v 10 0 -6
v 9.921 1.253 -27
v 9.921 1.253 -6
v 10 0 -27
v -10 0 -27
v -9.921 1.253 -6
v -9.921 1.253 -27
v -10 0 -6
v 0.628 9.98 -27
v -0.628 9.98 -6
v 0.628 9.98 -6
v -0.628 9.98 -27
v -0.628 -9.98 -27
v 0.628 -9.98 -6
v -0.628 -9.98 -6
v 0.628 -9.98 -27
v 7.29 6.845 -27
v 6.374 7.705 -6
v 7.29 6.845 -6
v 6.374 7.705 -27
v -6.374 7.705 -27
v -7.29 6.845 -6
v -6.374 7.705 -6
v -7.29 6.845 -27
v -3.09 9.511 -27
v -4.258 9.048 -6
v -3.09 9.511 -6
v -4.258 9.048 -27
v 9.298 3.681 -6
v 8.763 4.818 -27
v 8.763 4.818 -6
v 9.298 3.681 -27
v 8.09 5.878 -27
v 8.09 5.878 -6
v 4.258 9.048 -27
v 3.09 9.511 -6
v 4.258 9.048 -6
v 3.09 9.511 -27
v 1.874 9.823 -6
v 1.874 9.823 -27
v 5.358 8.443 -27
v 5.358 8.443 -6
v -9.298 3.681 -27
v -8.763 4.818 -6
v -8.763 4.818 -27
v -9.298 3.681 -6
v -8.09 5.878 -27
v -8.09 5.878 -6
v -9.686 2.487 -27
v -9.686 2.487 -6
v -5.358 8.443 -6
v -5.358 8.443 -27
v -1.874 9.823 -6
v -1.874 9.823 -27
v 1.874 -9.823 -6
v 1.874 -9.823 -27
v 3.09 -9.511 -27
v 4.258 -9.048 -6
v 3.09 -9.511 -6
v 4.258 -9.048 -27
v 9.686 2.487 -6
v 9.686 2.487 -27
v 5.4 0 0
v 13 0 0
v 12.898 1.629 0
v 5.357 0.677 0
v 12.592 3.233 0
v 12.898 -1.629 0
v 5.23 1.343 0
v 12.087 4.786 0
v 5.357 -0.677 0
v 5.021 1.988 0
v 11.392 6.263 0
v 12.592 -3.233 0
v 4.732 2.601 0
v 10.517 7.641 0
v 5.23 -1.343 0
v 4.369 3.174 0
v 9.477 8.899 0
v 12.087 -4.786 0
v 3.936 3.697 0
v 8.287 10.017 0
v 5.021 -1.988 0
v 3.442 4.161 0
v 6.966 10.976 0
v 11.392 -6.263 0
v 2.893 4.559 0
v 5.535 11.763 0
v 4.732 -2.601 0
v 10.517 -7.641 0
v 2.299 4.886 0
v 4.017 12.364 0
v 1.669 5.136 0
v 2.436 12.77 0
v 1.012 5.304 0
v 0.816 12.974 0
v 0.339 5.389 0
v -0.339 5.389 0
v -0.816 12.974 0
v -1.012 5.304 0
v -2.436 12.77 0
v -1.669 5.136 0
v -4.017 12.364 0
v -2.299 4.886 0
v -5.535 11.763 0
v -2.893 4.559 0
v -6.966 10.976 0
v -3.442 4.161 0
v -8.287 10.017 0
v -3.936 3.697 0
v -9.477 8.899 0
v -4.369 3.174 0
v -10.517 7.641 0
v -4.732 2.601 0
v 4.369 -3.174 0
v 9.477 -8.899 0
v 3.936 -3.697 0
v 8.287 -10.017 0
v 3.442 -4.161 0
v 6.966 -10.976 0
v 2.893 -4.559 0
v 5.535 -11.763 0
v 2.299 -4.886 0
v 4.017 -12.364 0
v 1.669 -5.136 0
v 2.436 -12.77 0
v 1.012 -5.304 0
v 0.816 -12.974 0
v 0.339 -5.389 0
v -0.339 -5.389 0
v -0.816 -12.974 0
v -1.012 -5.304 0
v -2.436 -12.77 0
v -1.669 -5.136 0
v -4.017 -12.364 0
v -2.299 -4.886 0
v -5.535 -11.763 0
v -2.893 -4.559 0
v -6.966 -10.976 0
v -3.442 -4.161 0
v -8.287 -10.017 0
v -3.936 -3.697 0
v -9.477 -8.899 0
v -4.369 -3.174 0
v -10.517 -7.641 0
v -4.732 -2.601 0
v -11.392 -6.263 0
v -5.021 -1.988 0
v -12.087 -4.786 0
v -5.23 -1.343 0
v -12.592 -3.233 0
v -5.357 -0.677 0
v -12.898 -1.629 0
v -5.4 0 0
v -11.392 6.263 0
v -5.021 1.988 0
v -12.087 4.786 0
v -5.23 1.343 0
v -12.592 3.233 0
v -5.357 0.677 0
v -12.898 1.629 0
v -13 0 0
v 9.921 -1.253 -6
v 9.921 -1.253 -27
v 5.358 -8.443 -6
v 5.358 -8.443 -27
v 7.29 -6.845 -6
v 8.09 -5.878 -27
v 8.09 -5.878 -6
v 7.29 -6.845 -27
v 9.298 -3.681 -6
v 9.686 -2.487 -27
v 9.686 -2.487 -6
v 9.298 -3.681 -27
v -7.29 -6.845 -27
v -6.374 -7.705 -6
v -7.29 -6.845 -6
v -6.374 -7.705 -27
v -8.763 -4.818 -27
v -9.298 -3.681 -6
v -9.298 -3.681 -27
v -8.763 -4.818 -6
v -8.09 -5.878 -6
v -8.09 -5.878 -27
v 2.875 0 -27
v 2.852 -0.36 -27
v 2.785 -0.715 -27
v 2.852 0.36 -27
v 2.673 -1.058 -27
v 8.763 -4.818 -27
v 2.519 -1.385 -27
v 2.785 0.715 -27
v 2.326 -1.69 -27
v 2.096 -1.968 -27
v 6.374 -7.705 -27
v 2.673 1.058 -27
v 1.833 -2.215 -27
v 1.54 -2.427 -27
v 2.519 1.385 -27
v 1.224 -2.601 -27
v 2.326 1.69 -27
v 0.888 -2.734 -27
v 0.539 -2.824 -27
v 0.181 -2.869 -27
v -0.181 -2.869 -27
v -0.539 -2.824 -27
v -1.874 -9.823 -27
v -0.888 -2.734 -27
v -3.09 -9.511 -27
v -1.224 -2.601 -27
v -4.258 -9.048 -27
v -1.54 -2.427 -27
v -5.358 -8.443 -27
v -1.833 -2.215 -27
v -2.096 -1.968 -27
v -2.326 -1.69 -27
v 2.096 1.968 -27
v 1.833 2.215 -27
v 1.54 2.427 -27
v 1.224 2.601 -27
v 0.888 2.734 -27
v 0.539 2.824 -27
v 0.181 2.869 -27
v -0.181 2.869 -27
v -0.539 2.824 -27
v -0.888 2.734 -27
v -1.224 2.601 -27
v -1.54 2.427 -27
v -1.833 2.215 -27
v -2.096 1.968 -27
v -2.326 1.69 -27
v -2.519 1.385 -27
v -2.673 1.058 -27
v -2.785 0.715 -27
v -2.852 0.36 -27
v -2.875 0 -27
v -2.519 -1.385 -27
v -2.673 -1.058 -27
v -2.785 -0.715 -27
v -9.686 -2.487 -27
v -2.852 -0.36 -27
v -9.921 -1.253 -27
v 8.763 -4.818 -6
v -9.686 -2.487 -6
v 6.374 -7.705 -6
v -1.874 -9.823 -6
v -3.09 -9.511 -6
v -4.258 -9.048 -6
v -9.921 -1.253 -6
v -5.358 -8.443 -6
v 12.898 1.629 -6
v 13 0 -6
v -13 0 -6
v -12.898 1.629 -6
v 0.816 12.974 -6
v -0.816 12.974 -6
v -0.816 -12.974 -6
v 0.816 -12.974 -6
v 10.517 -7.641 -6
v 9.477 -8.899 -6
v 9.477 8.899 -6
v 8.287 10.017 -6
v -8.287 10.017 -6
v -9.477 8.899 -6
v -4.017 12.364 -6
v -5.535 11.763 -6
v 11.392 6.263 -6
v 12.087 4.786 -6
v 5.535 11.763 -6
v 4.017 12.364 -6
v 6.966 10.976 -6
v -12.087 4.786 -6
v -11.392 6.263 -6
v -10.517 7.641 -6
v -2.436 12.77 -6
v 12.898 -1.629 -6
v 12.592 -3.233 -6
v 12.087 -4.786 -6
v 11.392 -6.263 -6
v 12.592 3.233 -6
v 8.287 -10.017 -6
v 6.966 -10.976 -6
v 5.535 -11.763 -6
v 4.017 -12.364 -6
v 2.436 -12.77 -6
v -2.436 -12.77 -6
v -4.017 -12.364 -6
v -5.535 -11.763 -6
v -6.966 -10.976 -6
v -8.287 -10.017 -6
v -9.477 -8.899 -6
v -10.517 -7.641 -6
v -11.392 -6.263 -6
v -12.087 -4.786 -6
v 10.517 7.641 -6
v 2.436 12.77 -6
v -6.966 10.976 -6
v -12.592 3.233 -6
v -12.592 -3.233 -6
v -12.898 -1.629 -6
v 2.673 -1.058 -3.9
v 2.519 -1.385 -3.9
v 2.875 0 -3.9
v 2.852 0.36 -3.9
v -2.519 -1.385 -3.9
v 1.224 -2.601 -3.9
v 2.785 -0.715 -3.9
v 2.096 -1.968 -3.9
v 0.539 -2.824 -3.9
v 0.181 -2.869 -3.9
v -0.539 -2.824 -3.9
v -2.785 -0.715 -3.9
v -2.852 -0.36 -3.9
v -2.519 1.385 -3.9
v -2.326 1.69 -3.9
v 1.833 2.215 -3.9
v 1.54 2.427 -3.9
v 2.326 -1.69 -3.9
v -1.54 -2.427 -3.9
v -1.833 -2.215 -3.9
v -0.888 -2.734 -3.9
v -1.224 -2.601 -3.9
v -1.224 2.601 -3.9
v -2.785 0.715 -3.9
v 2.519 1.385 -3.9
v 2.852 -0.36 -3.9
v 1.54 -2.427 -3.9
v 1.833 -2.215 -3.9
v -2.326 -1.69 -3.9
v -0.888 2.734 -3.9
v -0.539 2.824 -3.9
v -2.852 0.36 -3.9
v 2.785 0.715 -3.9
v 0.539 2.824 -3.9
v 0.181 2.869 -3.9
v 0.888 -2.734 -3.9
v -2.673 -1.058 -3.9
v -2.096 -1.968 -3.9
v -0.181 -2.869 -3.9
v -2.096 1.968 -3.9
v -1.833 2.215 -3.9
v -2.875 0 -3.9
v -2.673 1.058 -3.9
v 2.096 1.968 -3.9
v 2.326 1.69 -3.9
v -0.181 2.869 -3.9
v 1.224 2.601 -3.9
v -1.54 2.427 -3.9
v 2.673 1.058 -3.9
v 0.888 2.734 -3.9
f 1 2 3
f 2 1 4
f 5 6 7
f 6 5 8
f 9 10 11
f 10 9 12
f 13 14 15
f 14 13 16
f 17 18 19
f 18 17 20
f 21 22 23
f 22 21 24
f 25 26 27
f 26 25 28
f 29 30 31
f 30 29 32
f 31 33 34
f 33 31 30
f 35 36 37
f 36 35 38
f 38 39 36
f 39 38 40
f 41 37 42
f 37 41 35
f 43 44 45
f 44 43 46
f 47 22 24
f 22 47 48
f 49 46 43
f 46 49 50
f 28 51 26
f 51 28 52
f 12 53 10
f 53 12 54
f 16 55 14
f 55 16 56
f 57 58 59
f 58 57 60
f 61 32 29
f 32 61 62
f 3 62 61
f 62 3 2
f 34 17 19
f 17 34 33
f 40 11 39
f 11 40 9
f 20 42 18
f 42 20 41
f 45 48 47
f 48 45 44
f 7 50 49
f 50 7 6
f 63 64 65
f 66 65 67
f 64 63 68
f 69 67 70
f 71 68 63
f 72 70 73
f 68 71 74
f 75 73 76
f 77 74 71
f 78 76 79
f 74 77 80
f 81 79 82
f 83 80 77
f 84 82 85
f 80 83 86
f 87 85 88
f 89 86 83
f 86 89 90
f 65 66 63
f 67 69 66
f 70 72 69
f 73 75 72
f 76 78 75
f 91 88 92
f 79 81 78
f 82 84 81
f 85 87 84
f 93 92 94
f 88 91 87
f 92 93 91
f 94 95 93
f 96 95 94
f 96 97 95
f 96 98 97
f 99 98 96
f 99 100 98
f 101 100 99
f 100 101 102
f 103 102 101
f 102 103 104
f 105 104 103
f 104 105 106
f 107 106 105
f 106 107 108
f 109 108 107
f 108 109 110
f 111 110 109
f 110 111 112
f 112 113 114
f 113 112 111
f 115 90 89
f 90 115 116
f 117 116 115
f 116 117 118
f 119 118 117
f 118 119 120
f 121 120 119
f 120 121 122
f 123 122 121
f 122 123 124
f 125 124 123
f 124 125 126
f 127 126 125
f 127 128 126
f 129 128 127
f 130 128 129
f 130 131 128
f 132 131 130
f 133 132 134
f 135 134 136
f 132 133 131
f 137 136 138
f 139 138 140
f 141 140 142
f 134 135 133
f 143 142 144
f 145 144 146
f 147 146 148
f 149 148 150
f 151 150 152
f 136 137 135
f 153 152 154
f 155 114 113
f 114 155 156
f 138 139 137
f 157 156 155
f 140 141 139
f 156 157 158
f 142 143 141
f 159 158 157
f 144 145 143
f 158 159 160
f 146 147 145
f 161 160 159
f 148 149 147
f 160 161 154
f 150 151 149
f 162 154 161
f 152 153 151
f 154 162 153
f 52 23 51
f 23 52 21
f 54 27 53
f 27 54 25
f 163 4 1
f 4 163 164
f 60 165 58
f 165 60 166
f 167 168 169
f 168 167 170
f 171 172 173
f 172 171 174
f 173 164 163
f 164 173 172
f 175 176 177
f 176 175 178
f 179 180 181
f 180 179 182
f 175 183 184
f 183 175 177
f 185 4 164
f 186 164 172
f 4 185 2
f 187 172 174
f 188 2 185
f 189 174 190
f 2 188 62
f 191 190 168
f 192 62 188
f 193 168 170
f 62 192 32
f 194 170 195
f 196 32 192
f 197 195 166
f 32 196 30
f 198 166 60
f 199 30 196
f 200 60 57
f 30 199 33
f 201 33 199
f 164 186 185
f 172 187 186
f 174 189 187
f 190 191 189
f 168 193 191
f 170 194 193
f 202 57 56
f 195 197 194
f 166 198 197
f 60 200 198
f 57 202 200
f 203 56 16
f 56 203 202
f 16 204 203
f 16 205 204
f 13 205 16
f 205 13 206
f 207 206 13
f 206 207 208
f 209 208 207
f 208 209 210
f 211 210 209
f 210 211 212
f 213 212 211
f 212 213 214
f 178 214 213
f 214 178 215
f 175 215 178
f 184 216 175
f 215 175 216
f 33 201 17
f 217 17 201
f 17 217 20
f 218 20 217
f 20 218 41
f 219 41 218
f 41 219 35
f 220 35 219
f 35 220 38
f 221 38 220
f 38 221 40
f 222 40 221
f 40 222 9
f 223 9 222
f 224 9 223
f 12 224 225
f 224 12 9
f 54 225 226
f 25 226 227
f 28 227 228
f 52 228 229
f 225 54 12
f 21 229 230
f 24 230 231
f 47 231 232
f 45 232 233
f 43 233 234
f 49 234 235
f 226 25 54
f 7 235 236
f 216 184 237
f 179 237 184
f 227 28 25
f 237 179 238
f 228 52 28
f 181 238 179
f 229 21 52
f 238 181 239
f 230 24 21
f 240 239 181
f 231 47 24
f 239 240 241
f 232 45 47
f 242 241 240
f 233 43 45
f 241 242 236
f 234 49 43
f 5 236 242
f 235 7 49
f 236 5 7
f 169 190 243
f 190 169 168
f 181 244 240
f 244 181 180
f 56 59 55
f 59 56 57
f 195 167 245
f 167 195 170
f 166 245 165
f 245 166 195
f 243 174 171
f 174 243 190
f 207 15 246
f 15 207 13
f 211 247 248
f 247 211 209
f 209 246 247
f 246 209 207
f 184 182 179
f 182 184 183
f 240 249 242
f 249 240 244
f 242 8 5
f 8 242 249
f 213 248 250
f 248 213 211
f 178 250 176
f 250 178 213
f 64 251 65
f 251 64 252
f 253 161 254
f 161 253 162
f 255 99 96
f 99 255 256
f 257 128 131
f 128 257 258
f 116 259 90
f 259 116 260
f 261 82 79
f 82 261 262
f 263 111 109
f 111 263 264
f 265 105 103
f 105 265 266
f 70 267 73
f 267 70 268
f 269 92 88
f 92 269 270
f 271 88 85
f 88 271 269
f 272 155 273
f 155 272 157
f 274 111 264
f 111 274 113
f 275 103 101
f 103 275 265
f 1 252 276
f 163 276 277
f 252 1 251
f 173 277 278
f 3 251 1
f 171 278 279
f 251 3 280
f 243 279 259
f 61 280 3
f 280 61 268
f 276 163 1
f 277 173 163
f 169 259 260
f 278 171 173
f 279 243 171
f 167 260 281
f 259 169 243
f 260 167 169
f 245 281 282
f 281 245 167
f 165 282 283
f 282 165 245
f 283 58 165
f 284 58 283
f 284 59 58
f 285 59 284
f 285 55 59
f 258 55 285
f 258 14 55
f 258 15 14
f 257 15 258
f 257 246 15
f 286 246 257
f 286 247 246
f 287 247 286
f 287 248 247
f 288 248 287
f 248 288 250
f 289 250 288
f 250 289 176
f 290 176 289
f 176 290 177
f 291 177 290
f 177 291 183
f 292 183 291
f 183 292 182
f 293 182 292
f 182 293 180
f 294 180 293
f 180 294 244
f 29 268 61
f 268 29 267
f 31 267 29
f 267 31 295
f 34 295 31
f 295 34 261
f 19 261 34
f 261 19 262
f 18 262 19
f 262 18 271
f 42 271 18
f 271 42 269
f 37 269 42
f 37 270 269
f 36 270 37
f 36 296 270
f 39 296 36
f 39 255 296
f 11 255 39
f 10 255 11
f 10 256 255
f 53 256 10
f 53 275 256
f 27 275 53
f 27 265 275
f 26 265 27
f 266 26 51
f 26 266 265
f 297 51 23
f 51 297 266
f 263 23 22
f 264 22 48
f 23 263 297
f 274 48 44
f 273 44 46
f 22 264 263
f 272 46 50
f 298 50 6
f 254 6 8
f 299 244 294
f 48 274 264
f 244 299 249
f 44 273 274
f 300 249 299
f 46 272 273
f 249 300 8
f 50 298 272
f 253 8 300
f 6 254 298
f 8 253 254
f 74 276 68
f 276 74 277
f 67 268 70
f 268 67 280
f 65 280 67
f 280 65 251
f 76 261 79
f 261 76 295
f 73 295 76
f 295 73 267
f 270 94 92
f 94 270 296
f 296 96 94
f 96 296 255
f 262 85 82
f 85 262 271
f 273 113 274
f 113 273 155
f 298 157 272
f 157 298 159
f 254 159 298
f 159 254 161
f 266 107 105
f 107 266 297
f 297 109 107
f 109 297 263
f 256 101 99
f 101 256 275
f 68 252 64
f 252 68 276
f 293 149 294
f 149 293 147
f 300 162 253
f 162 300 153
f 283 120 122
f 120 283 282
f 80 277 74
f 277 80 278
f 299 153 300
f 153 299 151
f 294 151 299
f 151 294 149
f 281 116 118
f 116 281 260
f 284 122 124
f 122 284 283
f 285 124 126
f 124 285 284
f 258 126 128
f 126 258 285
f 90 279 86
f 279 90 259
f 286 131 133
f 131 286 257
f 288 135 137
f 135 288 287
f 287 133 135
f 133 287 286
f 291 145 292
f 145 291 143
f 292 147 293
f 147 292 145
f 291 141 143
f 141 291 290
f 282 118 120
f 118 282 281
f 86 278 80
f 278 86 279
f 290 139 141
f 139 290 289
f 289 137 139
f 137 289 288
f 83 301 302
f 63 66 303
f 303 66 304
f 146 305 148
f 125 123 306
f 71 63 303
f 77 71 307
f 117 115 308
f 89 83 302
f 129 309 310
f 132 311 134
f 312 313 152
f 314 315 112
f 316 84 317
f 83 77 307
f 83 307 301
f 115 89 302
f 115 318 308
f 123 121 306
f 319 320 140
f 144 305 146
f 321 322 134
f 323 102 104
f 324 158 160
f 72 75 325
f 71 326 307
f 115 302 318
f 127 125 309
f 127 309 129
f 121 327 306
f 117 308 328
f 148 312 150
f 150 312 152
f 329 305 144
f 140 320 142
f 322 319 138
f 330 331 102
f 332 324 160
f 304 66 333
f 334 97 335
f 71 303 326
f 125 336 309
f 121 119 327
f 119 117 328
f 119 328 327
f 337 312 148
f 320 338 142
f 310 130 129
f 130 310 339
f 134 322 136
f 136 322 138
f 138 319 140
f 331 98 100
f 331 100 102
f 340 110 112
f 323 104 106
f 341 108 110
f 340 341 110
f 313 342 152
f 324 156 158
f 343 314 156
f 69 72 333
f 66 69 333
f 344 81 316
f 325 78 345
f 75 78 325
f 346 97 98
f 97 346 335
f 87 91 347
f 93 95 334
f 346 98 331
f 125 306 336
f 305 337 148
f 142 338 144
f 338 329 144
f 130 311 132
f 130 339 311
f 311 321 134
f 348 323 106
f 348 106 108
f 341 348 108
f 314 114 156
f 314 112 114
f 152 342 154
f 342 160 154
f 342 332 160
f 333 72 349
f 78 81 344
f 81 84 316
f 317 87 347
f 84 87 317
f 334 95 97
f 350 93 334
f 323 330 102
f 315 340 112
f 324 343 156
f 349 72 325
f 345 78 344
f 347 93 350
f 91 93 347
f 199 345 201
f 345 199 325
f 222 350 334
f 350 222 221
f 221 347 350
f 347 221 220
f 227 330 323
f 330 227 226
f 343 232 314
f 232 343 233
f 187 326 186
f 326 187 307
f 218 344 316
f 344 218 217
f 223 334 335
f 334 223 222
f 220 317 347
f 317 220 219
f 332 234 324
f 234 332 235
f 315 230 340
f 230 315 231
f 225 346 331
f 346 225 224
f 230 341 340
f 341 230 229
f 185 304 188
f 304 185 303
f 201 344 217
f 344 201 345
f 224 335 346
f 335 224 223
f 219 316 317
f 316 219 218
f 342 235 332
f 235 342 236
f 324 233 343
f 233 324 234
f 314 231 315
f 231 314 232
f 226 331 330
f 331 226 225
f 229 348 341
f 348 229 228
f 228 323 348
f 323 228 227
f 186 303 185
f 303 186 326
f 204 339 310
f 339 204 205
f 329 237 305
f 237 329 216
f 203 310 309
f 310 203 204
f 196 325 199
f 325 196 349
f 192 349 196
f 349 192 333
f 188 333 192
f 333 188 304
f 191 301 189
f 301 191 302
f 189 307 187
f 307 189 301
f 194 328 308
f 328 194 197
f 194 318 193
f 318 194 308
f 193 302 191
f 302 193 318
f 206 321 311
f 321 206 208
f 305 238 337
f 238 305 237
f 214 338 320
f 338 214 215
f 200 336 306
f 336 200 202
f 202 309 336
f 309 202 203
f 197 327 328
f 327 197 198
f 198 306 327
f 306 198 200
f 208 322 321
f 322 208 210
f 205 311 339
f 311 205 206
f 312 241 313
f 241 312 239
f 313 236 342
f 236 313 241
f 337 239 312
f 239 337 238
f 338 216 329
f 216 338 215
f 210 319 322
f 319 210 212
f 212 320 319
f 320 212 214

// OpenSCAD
$fn = 50;


difference() {
	union() {
		translate(v = [0, 0, -27.0000000000]) {
			cylinder(h = 27, r = 10.0000000000);
		}
		translate(v = [0, 0, -6.0000000000]) {
			cylinder(h = 6, r = 13.0000000000);
		}
	}
	union() {
		translate(v = [0, 0, 0]) {
			rotate(a = [0, 0, 0]) {
				difference() {
					union() {
						#translate(v = [0, 0, -27.0000000000]) {
							cylinder(h = 27, r = 2.6000000000);
						}
						#translate(v = [0, 0, -3.9000000000]) {
							cylinder(h = 3.9000000000, r1 = 2.8750000000, r2 = 5.4000000000);
						}
						#translate(v = [0, 0, -27.0000000000]) {
							cylinder(h = 27, r = 2.8750000000);
						}
						#translate(v = [0, 0, -27.0000000000]) {
							cylinder(h = 27, r = 2.6000000000);
						}
					}
					union();
				}
			}
		}
	}
}
